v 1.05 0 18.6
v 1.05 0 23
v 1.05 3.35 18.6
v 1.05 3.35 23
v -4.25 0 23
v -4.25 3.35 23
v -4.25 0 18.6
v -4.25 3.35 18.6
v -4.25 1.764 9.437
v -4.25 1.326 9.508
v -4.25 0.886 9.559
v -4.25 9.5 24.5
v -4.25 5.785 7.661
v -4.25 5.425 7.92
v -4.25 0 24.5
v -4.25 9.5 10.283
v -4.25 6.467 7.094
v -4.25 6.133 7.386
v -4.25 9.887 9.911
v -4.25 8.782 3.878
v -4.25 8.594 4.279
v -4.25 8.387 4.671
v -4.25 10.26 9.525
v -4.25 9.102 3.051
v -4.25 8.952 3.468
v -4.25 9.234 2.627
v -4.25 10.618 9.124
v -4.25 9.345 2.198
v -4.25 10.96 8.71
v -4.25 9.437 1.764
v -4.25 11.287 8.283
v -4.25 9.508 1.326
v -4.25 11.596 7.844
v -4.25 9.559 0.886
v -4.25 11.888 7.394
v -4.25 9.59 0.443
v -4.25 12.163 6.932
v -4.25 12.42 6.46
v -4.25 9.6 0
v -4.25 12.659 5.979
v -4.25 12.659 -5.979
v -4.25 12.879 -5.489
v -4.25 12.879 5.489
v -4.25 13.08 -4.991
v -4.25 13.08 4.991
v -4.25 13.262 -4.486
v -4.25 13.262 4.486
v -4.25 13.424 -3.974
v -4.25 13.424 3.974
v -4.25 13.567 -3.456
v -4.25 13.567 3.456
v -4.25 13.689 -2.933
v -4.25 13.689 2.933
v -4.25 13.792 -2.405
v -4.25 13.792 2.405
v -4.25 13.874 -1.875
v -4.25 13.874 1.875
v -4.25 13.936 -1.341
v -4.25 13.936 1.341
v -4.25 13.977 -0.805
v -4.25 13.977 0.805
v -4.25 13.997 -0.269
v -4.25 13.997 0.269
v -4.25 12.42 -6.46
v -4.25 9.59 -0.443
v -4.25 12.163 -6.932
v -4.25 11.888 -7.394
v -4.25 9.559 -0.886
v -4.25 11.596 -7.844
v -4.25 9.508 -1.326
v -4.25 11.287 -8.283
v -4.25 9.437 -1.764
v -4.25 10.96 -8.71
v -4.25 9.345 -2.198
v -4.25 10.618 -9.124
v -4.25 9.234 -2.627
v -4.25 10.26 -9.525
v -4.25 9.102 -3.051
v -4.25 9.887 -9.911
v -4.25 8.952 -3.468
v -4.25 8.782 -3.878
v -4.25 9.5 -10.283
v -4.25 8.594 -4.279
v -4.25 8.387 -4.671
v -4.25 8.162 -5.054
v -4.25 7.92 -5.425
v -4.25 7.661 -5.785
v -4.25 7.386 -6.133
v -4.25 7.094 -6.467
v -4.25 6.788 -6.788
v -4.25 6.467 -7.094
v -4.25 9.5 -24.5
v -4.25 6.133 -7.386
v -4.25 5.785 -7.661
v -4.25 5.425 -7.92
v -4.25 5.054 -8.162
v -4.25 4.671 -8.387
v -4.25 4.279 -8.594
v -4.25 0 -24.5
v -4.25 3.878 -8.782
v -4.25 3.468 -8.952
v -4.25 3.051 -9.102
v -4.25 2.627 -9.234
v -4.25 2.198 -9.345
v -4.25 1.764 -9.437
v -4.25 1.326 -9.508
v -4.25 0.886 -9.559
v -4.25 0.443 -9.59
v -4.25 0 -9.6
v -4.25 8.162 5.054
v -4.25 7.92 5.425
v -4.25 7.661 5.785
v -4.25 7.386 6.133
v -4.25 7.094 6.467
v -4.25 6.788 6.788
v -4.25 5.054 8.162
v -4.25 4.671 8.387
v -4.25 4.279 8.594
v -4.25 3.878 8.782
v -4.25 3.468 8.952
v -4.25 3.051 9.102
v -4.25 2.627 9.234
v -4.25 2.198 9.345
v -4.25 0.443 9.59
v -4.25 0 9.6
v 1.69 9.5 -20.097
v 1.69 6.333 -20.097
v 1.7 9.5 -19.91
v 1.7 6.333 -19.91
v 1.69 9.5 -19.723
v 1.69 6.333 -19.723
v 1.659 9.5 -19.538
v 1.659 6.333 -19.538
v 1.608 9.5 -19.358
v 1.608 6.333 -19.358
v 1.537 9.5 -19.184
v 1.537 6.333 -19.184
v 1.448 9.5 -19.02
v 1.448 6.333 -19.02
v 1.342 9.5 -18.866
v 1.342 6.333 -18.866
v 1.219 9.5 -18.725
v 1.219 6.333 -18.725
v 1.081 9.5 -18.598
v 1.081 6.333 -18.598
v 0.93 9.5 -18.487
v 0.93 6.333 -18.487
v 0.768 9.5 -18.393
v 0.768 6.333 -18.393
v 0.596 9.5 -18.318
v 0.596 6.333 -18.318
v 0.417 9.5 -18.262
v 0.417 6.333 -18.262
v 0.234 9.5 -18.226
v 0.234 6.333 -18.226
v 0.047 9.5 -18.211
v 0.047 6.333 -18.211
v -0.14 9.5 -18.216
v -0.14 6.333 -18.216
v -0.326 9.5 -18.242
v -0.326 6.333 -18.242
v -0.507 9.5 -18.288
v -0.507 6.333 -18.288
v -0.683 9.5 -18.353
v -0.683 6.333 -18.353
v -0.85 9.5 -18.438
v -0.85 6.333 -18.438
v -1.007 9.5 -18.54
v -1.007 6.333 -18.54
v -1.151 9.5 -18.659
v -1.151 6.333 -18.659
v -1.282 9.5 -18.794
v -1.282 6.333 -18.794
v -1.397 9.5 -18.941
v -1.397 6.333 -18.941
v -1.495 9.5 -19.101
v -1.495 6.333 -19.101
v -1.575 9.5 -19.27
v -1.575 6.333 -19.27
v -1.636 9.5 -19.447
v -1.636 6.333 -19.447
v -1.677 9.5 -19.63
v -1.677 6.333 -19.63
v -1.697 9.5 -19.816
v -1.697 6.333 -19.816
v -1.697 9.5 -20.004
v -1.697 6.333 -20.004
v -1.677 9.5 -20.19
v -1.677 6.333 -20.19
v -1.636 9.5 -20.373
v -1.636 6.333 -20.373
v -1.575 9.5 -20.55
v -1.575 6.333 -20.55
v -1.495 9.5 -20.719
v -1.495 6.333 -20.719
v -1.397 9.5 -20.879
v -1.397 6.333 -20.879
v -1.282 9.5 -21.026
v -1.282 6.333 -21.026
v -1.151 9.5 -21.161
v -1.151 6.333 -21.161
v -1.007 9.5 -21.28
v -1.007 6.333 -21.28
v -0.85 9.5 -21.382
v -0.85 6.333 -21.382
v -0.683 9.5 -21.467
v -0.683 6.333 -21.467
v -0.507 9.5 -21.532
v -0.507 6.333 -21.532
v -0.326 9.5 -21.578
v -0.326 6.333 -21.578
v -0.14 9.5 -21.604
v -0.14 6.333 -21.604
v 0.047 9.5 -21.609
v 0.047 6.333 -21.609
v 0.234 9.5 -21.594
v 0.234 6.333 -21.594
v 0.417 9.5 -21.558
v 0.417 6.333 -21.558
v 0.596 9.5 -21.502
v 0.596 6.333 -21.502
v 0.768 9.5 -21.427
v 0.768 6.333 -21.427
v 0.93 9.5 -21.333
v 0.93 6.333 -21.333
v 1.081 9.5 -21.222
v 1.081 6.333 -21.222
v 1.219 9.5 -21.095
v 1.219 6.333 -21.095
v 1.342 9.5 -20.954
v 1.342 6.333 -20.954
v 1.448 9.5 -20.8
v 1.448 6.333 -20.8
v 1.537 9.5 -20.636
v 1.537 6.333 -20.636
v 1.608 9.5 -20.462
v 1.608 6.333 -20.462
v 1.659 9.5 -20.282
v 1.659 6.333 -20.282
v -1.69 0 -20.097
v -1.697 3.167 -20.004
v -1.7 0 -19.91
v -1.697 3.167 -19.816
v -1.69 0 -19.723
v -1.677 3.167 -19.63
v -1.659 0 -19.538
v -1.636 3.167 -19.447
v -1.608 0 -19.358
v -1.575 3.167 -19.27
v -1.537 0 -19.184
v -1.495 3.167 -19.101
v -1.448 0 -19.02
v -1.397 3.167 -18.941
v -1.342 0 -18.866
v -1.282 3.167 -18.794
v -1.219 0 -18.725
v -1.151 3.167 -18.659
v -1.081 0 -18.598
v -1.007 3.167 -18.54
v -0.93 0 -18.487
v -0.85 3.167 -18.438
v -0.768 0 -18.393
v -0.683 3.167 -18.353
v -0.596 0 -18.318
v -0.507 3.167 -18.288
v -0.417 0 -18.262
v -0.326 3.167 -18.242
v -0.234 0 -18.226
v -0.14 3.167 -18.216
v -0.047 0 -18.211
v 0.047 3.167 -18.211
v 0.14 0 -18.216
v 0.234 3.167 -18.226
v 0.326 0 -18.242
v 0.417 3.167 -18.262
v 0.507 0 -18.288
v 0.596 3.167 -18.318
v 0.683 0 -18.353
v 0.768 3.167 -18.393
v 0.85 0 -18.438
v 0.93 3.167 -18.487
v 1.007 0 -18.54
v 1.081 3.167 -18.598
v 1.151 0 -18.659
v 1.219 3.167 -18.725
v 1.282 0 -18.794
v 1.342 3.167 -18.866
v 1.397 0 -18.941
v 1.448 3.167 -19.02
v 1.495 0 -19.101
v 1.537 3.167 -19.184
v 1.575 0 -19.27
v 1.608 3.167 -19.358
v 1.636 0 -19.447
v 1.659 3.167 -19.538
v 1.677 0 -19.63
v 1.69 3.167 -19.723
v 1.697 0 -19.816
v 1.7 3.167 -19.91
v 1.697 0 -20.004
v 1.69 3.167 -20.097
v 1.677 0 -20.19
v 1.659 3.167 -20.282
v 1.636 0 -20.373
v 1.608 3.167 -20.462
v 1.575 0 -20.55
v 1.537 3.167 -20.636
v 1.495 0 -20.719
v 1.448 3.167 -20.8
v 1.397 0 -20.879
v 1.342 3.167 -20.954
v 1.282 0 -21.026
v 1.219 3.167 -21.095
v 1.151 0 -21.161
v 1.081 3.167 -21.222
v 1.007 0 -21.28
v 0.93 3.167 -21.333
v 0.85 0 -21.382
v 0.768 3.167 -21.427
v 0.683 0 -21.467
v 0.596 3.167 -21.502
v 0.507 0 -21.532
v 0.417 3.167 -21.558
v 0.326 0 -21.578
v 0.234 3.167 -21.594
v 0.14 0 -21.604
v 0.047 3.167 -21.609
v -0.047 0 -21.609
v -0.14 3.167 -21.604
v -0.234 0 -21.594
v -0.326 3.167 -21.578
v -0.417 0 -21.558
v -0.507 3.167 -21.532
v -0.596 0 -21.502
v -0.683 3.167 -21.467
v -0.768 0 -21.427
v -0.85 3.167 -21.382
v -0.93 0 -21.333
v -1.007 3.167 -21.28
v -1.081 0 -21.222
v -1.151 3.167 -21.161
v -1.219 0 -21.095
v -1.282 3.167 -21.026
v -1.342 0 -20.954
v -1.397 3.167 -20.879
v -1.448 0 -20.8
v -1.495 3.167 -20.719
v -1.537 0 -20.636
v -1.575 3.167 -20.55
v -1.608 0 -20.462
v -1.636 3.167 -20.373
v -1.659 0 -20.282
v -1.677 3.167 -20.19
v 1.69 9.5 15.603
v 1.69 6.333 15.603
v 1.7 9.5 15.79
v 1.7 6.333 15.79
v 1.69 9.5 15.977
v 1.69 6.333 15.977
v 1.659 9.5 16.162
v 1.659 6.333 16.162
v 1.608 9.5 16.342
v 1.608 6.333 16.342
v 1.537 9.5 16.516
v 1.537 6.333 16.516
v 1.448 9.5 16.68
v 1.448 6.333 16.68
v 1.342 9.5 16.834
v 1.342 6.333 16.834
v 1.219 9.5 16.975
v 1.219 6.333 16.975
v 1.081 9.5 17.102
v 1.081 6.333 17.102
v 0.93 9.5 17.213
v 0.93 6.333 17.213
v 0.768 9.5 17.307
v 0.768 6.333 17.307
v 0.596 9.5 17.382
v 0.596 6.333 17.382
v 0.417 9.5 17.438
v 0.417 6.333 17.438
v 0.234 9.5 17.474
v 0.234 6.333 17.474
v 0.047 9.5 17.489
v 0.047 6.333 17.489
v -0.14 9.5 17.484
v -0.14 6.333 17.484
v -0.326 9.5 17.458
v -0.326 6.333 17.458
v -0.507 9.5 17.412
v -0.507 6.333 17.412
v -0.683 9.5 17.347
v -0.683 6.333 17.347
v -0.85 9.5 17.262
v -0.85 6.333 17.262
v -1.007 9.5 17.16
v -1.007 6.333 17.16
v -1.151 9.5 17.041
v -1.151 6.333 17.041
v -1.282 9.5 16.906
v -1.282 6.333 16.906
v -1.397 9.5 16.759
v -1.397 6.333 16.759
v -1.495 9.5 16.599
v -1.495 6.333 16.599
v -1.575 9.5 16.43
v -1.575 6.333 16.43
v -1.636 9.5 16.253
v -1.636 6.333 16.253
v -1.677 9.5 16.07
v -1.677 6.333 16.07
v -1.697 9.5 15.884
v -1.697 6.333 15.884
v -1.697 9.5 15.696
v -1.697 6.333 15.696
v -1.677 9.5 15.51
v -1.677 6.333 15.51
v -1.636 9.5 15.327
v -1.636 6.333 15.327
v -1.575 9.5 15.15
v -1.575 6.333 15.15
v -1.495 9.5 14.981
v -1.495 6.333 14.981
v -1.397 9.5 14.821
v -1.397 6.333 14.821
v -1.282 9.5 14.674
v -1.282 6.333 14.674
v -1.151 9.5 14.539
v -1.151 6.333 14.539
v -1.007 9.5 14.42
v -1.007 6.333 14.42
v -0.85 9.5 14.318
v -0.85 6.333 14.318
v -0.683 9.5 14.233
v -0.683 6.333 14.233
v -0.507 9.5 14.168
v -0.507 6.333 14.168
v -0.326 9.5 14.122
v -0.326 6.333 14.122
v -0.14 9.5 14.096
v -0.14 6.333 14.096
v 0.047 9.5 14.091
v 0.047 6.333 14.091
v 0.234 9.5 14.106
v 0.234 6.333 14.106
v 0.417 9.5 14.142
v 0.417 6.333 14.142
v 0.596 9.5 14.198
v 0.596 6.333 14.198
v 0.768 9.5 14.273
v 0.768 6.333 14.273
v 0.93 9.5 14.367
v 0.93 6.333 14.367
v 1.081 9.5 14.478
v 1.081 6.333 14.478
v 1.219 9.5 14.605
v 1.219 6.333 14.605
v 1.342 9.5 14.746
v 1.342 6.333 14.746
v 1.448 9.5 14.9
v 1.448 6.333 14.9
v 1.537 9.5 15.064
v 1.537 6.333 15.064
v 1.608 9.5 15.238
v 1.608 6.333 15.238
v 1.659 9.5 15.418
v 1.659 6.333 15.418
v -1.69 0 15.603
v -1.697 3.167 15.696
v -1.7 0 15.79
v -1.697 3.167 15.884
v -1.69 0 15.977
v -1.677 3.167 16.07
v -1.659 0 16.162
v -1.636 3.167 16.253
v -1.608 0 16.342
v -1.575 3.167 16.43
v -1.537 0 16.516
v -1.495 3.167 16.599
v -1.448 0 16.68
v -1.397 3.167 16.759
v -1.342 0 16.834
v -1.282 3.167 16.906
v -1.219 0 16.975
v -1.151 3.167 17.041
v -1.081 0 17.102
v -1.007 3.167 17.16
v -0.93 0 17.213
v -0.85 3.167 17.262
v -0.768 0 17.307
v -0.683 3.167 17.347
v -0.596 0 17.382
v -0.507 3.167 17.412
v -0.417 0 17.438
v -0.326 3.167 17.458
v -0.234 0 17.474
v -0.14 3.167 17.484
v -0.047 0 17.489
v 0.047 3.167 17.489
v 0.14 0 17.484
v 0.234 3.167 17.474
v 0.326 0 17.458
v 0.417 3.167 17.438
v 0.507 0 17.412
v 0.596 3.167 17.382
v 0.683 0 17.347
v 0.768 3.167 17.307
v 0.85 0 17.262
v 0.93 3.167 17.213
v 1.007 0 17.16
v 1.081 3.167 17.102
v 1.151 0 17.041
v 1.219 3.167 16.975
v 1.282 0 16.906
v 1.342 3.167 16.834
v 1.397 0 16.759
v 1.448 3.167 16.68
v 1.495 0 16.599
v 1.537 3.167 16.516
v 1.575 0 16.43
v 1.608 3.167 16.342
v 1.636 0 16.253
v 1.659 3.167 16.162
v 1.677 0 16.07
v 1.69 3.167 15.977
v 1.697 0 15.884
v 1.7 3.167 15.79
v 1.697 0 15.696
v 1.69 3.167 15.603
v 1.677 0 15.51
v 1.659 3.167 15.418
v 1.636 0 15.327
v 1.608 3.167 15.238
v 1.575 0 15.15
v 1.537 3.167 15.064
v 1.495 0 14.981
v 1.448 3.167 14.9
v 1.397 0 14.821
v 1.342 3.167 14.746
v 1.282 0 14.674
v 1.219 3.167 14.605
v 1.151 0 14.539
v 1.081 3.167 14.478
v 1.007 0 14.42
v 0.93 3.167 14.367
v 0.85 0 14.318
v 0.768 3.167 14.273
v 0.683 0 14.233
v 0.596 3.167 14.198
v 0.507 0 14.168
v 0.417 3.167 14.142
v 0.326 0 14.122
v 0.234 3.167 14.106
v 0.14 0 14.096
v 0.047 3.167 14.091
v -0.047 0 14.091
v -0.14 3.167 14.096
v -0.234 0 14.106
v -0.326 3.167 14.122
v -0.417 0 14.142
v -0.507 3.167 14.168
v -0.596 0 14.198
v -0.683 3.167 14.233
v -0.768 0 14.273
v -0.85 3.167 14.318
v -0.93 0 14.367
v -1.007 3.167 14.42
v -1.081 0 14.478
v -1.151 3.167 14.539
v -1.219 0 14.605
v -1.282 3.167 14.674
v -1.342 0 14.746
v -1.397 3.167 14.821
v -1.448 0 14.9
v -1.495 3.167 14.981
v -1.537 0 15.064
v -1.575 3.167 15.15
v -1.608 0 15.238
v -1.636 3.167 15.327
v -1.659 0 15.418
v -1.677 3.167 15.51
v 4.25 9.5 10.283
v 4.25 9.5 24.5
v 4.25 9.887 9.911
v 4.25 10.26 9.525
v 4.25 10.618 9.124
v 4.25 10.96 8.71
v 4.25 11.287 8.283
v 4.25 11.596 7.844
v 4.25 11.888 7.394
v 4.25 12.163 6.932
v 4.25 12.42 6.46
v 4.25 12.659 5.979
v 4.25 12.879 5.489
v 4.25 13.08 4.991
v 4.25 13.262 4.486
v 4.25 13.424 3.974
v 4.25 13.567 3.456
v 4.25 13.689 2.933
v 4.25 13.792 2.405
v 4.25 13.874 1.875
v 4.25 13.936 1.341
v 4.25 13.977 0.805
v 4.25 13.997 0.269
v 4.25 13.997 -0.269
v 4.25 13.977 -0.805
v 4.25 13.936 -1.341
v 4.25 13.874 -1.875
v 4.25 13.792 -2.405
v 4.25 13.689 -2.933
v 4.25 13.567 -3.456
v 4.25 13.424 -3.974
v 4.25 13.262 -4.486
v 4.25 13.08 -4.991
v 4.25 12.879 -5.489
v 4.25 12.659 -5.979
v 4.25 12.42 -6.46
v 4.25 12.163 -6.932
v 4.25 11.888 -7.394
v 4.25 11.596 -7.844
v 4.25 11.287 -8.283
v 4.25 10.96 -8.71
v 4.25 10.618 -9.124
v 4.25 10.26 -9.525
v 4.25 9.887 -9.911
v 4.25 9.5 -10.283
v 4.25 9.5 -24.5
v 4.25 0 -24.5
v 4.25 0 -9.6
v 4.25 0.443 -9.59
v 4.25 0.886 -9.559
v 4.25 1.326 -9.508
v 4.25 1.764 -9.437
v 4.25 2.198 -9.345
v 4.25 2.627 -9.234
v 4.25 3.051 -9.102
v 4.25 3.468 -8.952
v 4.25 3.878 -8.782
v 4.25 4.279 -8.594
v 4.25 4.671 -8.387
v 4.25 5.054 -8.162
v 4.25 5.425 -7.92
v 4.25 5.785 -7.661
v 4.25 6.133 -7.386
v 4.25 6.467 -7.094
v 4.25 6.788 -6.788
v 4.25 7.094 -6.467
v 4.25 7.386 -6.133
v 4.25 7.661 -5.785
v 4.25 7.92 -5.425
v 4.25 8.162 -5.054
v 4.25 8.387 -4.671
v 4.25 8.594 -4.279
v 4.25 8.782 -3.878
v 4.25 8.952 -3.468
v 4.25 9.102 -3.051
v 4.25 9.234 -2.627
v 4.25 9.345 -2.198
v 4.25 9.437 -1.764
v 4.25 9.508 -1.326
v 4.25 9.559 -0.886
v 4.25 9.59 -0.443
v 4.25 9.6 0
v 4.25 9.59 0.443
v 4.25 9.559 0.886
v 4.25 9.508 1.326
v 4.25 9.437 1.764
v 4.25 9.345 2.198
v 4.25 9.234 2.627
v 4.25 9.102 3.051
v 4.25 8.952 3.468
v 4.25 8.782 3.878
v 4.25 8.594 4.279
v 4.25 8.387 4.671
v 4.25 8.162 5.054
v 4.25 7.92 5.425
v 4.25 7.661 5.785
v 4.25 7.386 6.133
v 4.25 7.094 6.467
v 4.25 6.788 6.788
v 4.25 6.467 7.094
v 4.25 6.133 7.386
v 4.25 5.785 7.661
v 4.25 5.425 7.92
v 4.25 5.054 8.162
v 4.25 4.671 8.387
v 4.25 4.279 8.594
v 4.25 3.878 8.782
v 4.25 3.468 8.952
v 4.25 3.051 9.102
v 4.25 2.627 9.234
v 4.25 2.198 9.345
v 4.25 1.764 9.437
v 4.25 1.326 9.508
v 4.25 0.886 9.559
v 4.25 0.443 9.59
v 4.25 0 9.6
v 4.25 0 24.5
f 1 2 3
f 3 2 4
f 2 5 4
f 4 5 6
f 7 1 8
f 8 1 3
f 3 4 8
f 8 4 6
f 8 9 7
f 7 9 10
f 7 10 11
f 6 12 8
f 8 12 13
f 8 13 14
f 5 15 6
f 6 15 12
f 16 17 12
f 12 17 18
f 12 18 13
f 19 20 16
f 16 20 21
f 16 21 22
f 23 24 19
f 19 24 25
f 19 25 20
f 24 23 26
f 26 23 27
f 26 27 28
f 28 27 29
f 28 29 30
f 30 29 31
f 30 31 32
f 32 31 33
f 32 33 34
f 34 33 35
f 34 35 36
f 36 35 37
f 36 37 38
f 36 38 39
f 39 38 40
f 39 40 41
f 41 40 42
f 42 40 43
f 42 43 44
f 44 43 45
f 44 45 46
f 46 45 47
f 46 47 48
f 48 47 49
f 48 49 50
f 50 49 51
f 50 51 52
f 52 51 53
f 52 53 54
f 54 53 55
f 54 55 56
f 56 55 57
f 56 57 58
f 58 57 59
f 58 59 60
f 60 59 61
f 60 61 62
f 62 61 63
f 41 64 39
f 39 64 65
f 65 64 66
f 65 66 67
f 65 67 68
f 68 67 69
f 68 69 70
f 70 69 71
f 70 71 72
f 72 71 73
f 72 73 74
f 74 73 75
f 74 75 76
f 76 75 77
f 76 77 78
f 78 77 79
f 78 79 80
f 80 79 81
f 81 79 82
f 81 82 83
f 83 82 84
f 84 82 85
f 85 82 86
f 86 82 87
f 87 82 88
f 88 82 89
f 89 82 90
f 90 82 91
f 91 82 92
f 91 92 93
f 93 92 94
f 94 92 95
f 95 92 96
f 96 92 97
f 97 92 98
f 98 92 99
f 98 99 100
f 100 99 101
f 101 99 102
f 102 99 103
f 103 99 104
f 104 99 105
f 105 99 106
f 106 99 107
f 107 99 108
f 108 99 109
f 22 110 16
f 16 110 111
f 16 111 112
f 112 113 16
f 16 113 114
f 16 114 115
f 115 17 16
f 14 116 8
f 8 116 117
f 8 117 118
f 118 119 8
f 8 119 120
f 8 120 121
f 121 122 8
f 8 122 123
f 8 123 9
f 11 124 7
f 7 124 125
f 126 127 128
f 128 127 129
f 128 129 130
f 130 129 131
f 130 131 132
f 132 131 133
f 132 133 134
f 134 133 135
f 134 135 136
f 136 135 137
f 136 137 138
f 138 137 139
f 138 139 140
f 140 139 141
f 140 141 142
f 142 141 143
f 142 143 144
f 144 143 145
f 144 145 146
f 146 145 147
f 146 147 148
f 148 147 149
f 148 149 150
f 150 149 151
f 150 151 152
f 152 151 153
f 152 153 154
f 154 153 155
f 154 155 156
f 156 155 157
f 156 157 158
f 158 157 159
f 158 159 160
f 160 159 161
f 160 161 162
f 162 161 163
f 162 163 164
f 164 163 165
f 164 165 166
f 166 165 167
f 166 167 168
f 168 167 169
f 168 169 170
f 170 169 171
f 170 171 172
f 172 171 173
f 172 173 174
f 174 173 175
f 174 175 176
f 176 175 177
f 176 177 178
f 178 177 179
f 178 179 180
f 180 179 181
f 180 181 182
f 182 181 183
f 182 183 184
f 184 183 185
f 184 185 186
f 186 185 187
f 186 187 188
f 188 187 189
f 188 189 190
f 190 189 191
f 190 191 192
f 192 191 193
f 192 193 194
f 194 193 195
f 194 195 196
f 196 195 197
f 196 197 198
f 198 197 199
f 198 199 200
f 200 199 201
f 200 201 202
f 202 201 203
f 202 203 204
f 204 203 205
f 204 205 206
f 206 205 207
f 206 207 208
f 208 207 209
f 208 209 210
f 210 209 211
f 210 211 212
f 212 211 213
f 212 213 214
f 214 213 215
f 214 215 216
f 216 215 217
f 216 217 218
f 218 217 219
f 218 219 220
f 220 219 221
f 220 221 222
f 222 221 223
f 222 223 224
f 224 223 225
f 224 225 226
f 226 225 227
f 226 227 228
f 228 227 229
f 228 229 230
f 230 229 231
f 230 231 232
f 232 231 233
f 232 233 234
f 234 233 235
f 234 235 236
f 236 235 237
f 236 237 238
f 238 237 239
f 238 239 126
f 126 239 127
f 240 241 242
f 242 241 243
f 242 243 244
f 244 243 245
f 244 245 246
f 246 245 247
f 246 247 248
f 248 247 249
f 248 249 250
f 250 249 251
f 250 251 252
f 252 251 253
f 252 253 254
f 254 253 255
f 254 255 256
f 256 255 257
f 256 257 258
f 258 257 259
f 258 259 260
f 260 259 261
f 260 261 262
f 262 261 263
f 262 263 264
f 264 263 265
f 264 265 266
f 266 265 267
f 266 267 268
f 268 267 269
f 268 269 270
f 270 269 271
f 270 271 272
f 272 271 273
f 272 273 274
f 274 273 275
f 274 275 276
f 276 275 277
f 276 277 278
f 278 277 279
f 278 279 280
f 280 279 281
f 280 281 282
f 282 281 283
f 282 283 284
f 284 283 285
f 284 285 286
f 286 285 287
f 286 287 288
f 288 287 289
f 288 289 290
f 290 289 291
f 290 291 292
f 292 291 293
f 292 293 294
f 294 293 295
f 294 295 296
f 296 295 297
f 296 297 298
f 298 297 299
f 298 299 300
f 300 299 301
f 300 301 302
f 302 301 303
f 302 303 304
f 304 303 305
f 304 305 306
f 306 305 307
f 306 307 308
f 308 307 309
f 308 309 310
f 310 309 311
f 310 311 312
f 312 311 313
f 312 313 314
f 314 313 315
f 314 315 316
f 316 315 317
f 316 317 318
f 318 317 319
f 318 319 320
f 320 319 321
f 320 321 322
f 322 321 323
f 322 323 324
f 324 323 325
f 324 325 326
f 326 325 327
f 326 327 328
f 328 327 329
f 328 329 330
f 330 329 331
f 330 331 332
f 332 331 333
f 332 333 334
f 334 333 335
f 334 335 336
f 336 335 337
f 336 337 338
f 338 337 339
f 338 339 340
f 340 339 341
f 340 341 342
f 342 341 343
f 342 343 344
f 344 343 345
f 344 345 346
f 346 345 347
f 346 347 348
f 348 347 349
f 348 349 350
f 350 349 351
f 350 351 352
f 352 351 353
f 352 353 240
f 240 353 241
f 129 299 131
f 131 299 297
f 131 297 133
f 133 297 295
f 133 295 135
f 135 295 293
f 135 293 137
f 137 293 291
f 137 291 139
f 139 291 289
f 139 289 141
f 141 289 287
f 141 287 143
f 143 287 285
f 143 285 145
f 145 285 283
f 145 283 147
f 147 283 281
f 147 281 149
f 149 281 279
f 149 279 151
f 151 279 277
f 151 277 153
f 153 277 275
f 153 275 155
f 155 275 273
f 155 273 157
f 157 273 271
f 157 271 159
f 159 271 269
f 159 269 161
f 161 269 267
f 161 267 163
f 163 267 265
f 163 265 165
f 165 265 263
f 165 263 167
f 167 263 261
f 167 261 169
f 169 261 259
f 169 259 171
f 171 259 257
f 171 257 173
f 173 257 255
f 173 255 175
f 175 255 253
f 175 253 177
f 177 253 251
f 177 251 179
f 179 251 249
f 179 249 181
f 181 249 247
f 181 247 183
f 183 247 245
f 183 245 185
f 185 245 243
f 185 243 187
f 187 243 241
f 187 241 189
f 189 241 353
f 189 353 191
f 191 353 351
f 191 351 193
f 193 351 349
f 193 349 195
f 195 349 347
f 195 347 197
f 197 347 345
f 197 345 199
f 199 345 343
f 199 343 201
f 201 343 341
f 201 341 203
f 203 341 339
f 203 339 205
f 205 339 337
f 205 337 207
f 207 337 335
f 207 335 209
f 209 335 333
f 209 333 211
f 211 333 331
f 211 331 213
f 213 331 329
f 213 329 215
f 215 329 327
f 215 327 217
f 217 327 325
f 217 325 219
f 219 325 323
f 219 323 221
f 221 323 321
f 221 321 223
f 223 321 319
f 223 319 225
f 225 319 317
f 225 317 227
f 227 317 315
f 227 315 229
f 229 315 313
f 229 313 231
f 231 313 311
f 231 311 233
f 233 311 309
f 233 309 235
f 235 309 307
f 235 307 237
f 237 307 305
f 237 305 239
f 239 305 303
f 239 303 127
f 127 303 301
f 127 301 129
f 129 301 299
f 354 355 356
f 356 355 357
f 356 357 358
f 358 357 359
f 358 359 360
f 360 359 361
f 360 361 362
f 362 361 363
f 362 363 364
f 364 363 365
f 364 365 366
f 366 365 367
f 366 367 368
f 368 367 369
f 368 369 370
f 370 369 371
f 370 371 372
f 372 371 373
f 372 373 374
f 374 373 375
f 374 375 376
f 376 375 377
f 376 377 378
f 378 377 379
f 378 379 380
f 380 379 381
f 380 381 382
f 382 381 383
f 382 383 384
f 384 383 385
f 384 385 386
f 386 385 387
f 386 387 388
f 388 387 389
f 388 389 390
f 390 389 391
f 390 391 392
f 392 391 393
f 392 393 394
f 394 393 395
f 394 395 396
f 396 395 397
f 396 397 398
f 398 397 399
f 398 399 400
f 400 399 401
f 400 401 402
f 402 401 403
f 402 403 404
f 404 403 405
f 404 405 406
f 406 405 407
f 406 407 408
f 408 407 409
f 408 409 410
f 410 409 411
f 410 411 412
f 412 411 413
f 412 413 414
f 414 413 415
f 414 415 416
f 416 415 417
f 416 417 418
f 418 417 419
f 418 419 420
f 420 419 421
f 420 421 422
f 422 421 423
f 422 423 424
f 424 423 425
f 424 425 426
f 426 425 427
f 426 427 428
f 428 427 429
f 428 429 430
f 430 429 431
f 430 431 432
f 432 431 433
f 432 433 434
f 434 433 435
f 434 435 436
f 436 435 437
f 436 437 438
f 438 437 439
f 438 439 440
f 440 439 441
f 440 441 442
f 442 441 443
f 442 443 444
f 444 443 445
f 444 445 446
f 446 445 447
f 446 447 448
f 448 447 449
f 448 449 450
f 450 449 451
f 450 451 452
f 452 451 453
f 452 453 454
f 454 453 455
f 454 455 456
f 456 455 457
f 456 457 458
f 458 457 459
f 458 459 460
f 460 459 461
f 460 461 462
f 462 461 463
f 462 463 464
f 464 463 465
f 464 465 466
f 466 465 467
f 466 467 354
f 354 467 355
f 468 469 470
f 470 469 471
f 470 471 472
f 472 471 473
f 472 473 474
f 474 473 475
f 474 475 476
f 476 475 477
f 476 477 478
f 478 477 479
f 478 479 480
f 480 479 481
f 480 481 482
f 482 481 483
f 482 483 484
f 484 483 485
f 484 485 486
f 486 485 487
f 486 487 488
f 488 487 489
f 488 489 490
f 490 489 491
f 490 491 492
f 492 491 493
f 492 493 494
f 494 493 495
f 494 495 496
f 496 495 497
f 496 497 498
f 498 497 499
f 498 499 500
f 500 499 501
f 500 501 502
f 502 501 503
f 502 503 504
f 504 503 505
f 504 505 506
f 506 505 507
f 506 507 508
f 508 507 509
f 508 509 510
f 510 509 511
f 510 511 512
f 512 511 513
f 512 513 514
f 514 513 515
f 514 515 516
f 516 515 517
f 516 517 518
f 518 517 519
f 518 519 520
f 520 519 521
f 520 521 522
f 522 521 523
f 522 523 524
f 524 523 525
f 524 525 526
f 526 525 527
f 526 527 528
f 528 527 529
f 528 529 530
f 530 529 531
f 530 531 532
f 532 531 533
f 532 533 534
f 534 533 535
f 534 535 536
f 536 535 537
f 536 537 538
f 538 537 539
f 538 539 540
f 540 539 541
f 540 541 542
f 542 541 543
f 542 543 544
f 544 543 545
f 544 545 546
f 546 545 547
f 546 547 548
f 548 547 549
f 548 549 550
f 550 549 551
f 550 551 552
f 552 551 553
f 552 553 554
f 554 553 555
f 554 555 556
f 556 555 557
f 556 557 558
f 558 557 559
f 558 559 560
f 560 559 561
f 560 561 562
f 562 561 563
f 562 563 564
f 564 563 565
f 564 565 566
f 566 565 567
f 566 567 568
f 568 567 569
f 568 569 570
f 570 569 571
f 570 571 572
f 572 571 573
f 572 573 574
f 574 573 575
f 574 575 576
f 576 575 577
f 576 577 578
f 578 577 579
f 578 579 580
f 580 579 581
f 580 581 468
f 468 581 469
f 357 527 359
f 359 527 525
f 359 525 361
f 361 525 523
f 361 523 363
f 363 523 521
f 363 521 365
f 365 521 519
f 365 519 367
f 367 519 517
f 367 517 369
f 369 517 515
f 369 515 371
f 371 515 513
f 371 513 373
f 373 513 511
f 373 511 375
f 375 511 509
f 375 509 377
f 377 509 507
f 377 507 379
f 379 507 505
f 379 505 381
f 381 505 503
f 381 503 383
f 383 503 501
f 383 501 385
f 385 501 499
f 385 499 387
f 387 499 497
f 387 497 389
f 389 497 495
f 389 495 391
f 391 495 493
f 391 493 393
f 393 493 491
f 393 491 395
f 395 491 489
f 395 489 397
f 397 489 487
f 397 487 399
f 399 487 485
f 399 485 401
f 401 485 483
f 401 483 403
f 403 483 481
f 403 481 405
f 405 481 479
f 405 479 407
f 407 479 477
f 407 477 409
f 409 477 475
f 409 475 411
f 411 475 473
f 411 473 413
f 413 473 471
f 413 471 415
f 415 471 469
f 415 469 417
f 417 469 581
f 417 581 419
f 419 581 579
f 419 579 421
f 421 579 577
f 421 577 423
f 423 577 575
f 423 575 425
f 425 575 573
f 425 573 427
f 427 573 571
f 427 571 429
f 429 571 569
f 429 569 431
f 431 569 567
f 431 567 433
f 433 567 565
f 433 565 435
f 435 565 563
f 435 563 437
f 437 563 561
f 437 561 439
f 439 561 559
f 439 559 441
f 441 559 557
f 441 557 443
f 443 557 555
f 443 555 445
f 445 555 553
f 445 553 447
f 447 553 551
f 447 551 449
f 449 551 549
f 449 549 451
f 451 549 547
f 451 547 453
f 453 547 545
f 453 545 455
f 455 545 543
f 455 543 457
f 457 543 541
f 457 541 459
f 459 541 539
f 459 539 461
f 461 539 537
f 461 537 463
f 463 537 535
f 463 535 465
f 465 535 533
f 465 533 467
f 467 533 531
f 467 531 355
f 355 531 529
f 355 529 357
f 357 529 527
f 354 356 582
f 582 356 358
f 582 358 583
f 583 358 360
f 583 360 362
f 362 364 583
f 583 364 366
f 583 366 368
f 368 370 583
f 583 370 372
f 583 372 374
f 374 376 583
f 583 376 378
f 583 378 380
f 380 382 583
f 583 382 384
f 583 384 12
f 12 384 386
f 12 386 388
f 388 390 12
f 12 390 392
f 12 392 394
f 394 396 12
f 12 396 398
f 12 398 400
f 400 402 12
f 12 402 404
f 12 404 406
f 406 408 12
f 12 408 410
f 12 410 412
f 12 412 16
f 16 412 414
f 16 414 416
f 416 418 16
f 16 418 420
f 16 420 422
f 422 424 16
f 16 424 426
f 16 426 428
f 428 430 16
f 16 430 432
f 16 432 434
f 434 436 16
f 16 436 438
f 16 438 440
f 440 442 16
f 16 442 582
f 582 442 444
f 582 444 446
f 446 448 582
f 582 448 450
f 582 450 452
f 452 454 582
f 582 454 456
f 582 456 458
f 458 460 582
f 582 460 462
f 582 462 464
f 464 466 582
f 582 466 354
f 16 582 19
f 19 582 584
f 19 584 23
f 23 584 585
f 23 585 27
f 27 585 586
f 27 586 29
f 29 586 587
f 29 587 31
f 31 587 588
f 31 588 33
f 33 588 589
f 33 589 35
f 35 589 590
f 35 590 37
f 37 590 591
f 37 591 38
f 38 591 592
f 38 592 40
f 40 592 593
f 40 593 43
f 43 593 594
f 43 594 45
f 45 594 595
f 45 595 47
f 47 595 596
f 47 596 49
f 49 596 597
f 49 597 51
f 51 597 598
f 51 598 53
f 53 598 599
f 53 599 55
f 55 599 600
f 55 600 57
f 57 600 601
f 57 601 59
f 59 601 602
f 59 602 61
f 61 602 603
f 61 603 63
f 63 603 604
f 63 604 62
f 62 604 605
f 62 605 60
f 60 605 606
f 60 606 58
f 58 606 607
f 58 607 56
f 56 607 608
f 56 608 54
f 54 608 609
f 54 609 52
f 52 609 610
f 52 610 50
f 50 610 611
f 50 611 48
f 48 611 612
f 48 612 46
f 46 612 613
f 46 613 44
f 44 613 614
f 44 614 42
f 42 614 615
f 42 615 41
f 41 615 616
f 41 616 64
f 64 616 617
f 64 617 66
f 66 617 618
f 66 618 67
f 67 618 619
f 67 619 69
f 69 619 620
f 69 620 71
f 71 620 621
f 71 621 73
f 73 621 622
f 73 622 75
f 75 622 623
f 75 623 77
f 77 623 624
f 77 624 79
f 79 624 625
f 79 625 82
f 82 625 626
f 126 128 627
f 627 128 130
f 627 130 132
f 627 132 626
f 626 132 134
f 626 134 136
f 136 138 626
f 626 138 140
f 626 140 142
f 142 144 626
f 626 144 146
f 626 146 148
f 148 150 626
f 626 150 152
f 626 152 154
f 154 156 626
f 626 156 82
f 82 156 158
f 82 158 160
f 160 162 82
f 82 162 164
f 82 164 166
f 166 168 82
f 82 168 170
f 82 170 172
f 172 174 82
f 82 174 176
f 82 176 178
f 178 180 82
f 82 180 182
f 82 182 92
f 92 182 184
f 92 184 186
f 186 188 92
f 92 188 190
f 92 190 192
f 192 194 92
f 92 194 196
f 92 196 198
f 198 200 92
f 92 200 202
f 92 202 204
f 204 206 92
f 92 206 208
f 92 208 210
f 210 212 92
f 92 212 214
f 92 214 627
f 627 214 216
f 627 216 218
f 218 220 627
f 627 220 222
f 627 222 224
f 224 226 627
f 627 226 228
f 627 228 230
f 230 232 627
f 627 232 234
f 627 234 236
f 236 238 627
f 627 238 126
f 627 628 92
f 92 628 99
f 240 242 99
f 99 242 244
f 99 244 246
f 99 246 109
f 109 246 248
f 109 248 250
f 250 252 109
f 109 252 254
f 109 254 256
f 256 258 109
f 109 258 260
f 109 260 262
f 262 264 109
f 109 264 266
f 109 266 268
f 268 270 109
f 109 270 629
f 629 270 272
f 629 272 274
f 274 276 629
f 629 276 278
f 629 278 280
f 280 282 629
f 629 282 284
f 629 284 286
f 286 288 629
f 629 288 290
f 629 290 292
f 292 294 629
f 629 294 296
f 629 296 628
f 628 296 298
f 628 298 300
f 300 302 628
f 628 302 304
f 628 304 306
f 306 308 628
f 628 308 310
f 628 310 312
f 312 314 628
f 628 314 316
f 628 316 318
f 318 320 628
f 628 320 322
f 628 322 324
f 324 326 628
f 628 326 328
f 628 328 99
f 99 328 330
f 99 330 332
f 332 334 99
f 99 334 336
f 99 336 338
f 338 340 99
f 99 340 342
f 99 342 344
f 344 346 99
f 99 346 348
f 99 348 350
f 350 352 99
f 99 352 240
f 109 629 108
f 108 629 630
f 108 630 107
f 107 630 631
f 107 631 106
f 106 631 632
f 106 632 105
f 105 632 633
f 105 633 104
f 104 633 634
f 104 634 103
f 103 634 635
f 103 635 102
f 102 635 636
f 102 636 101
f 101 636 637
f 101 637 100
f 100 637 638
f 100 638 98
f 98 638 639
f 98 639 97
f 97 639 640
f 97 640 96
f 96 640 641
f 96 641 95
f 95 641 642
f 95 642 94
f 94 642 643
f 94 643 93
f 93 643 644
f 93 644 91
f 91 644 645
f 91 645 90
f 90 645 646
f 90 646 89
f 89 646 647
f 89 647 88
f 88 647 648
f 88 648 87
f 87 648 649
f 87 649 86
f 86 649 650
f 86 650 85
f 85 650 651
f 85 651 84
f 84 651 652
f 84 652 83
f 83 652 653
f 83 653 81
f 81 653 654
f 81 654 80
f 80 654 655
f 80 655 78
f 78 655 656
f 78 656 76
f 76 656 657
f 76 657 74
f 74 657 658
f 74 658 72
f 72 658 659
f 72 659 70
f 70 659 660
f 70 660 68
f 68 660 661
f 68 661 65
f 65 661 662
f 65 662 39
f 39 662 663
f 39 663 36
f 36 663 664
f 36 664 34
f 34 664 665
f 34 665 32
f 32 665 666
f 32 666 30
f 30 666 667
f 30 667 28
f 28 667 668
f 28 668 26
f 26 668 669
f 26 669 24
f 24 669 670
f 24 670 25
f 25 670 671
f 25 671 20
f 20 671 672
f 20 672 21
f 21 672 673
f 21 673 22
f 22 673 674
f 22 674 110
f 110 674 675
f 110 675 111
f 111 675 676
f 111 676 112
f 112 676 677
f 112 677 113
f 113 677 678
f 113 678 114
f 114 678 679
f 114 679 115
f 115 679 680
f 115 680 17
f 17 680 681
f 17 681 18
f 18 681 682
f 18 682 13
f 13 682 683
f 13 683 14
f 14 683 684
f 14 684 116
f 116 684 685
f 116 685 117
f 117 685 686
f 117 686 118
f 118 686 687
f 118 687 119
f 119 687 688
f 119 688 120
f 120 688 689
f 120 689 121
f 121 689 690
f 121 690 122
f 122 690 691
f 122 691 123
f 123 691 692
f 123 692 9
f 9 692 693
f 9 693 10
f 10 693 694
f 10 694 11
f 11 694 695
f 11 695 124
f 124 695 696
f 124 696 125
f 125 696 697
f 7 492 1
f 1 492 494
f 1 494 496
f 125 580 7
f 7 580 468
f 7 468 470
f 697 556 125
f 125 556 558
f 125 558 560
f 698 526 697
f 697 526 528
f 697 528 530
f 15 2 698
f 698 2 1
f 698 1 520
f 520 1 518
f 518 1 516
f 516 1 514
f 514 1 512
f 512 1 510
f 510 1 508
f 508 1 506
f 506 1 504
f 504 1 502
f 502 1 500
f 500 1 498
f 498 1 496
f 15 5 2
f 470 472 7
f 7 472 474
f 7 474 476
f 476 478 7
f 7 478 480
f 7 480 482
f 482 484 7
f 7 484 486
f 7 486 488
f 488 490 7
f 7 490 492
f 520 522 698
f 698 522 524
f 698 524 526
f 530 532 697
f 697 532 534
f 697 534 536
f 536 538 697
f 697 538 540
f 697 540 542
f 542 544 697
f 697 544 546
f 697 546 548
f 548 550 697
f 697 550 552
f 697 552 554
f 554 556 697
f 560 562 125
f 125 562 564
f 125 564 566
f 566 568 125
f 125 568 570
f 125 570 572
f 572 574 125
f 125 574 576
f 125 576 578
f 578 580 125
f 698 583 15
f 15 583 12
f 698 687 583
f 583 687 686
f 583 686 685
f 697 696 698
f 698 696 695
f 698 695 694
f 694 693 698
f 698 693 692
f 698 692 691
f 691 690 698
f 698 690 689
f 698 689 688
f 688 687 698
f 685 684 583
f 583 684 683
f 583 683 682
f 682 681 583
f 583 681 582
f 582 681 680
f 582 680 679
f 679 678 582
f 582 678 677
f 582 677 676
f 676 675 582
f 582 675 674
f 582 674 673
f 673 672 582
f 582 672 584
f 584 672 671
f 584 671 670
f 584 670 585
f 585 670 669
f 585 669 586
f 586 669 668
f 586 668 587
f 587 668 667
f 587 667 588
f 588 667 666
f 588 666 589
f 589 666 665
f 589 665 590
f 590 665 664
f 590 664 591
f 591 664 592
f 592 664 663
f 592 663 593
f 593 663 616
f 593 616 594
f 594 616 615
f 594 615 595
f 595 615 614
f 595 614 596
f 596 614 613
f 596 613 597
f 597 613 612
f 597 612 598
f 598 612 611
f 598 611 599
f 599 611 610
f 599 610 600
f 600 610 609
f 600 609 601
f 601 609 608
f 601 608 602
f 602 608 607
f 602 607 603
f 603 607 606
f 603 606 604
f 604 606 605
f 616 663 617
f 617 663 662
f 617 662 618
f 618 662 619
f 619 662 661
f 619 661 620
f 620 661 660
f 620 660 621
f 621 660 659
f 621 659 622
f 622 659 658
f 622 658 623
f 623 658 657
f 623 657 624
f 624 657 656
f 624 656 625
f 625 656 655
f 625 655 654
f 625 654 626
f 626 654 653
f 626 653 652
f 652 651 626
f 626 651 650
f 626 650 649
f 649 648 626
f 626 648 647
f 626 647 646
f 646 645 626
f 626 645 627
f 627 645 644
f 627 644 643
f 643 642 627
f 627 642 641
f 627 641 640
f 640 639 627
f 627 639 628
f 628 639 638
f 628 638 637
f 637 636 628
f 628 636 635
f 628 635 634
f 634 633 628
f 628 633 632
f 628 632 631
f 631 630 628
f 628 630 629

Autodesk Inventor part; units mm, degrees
ref_plane "YZ Plane" through (0, 0, 0) normal (1, 0, 0) x (0, 1, 0)
ref_plane "XZ Plane" through (0, 0, 0) normal (0, 1, 0) x (-1, 0, 0)
ref_plane "XY Plane" through (0, 0, 0) normal (0, 0, 1) x (1, 0, 0)
sketch "Skizze10" plane through (0, 0, 0) normal (1, 0, 0) x (0, 1, 0)
  arc A0 (0, -9.6) -> (0, 9.6) centre (0, 0) ccw
  line L0 (0, 0) -> (0, -24.5)
  line L1 (0, 0) -> (0, 24.5)
  line L2 (0, 15.79) -> (24.9524, 15.79) construction
  line L3 (-4.9905, 0) -> (29.9429, 0) projected
  line L4 (0, -19.91) -> (23.7326, -19.91) construction
  line L5 (0, 24.5) -> (9.5, 24.5)
  line L6 (9.5, 24.5) -> (9.5, 10.2835)
  arc A1 (9.5, -10.2835) -> (9.5, 10.2835) centre (0, 0) ccw
  line L7 (9.5, -10.2835) -> (9.5, -24.5)
  line L8 (0, -24.5) -> (9.5, -24.5)
  point P0 (0, 9.6)
  point P1 (9.5, -19.91)
  point P2 (9.5, 15.79)
  dimension "d79" = 9.6
  dimension "d80" = 24.5
  dimension "d81" = 24.5
  dimension "d82" = 15.79
  dimension "d83" = 19.91
  dimension "d84" = 9.5
  dimension "d85" = 14
extrude "Extrusion9" add sketch "Skizze10" along normal mid plane 8.5 contours A0 L3 A1 L7 L8 L0 | A0 L1 L5 L6 A1 L3
sketch "Skizze11" plane through (0, 0, 0) normal (0, 1, 0) x (-1, 0, 0)
  circle A0 centre (0, -19.91) radius 1.7
  circle A1 centre (0, 15.79) radius 1.7
  line L0 (-4.25, -24.5) -> (-4.25, -10.2835) projected
  line L1 (0, -32.898) -> (0, 25.888) projected
  point P0 (0, 0)
  dimension "d88" = 15.79
  dimension "d89" = 19.91
  dimension "d90" = 3.4
  dimension "d91" = 3.4
extrude "Extrusion10" cut sketch "Skizze11" along normal through all
sketch "Skizze12" plane through (0, 0, 0) normal (0, 1, 0) x (-1, 0, 0)
  line L0 (4.25, 9.6) -> (4.25, 24.5) projected
  line L1 (4.25, 23) -> (-1.05, 23)
  line L2 (-1.05, 23) -> (-1.05, 18.6)
  line L3 (-1.05, 18.6) -> (4.25, 18.6)
  line L4 (4.25, 18.6) -> (4.25, 23)
  line L5 (5.31, 0) -> (-2.11, 0) projected
  point P0 (0, 0)
  point P1 (4.25, 18.6)
  dimension "d94" = 4.4
  dimension "d95" = 5.3
  dimension "d96" = 18.6
extrude "Extrusion11" cut sketch "Skizze12" along normal blind 3.35
properties part number "Lagerhalter1"
